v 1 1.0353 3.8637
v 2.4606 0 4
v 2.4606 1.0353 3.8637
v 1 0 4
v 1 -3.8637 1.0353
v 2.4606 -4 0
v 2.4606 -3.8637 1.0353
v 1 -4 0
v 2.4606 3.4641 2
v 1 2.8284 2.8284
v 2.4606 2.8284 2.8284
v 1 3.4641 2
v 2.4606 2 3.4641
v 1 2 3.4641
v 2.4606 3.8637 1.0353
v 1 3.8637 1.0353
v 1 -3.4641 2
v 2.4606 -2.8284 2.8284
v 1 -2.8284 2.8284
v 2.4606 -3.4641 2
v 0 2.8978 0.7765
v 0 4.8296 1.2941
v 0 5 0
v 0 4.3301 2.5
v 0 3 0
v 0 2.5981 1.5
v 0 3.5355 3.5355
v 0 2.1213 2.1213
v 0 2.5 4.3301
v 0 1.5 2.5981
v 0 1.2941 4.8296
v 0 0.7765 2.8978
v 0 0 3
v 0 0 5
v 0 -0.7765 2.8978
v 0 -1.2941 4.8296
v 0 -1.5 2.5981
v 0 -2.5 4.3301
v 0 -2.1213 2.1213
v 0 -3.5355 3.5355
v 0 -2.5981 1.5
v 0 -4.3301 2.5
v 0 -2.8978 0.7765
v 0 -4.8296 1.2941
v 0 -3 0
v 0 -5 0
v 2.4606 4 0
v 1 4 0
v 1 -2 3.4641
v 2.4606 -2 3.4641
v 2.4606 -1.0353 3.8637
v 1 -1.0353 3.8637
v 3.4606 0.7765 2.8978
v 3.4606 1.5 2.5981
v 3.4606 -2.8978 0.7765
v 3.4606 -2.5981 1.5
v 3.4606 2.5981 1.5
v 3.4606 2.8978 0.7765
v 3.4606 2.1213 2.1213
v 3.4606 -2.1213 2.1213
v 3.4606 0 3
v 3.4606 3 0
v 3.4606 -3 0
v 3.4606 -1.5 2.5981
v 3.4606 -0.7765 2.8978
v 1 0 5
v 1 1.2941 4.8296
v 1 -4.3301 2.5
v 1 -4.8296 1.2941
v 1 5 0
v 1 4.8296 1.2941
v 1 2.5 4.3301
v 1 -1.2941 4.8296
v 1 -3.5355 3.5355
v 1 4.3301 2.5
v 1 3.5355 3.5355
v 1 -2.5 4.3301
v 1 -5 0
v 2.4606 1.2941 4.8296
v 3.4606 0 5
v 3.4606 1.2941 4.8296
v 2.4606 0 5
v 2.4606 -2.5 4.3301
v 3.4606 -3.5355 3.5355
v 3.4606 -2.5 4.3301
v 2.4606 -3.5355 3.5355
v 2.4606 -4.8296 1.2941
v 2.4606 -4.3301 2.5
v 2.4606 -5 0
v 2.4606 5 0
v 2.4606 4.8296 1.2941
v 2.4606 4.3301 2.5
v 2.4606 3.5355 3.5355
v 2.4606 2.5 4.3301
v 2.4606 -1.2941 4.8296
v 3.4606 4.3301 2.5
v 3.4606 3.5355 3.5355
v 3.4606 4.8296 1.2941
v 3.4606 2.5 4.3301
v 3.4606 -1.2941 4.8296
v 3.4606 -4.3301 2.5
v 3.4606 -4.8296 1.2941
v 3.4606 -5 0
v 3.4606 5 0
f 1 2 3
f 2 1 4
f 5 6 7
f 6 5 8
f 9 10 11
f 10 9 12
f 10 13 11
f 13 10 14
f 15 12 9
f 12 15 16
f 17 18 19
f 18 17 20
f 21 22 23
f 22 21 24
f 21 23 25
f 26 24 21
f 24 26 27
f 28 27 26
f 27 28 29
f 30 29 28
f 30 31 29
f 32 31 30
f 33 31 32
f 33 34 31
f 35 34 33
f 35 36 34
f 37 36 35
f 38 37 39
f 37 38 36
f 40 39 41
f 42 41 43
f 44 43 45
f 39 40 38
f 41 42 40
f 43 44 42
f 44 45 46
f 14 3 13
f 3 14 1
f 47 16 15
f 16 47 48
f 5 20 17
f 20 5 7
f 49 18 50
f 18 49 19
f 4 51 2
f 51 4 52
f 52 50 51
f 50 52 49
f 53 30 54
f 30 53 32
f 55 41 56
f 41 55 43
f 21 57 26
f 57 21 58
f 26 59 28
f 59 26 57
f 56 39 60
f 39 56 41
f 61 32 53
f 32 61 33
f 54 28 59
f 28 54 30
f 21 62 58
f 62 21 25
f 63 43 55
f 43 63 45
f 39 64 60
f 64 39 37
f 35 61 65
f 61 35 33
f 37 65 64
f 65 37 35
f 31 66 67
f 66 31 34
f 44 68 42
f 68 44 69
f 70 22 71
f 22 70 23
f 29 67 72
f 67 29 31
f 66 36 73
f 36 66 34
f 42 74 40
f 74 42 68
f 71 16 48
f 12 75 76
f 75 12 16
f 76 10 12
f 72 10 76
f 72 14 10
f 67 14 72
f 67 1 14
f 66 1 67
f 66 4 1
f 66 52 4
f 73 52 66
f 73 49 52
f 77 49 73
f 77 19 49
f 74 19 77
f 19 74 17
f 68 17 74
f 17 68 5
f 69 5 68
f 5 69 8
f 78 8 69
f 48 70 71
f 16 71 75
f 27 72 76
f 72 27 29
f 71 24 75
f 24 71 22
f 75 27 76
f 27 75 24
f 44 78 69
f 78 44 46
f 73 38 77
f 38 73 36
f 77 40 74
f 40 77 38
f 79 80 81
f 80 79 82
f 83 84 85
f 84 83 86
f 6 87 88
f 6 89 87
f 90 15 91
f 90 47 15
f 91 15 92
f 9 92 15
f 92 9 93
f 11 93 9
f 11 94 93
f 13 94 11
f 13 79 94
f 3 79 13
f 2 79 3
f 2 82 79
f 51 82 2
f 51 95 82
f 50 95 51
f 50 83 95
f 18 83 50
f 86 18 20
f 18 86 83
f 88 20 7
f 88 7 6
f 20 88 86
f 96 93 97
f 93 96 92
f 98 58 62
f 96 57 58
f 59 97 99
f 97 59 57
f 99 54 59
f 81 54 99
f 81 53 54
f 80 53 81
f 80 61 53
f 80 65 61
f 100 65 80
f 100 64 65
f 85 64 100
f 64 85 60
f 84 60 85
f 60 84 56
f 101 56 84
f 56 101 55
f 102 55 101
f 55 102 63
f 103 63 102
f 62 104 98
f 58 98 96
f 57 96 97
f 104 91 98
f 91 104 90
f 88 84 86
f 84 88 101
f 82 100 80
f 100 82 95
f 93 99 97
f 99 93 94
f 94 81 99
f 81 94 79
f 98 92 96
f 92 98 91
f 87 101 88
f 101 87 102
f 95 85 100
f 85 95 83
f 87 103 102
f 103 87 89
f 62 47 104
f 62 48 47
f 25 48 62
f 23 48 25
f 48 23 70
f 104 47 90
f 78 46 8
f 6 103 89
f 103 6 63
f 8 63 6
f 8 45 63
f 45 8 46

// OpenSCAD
// file: ../build_environments.scad
// build_environments.scad: modules to build level sections
//

module pool(diameter=10.0, wall_height=2.0, step_width=3.0, connections=[])
{
    difference() {
        union() {
        difference() {
            cylinder(h=0.5,r1=diameter+step_width,r2=diameter+step_width,$fn=48);
            translate([0,0,-0.1])
                cylinder(h=0.7,r1=diameter,r2=diameter,$fn=48);
        }
        difference() {
            cylinder(h=wall_height,r1=diameter+step_width+1.0,r2=diameter+step_width+1.0,$fn=48);
            translate([0,0,-0.1])
                cylinder(h=wall_height+0.2,r1=diameter+step_width,r2=diameter+step_width,$fn=48);
        }
        }
    
        for (c = connections)
        {
            rotate([0,90,0]) {
                angle = atan2(c[1],c[0]);
                rotate([-angle,0,0]) {
                    cylinder(h=diameter+5.0,r1=c[2],r2=c[2],$fn=48);
                }
            }
        }
    }
}

module straight(length=10.0, width=2.0, dy1=0.0, dy2=0.0, dz=0.0)
{
    dims = [0, 0, 0, 0, 0, (dz/length)];
    matrix = [
        [ 1, dims[0], dims[1], 0 ],
        [ dims[2], 1, dims[4], 0 ],
        [ dims[5], dims[3], 1, 0 ],
        [ 0, 0, 0, 1 ]
    ];
    multmatrix(matrix)
    difference() {
        translate([dy1,0,0])
        union() {
            rotate([0,90,0]) {
                difference() {
                    cylinder(h=(length-dy1-dy2),r1=width+1.0,r2=width+1.0,$fn=24);
                    translate([0,0,-0.1])
                        cylinder(h=(length-dy1-dy2+0.2),r1=width,r2=width,$fn=24);
                }
                difference() {
                    cylinder(h=1.0,r1=width+2.0,r2=width+2.0,$fn=24);
                    translate([0,0,-0.1])
                        cylinder(h=1.2,r1=width,r2=width,$fn=24);
                }
                translate([0,0,(length-dy1-dy2)-1.0]) {
                    difference() {
                        cylinder(h=1.0,r1=width+2.0,r2=width+2.0,$fn=24);
                        translate([0,0,-0.1])
                            cylinder(h=1.2,r1=width,r2=width,$fn=24);
                    }
                }
            }
        }
        translate([0,0,-(2*width+4.0)/2])
            cube([3*length,3*length,2*width+4.0],center=true);
    }
}

module curve(p0=[0,0], center=[0,0], dir=1, angle=0.0, width=2.0)
{
    radius = sqrt((p0[0]-center[0])*(p0[0]-center[0]) + (p0[1]-center[1])*(p0[1]-center[1]));
    if (dir == 0) {
        difference() {
            rotate([0,0,-90])
            difference() {
                rotate_extrude(angle = angle, convexity = 10, $fn=32)
                    translate([radius, 0, 0])
                        circle(r = width+1.0,$fn=24);
                rotate([0,0,-1.0])
                    rotate_extrude(angle = angle+2.0, convexity = 10, $fn=32)
                        translate([radius, 0, 0])
                            circle(r = width,$fn=24);
            }
            translate([0,0,-(2*width+4.0)/2])
                cube([5*radius,5*radius,2*width+4.0],center=true);
        }
    }
    else {
        difference() {
            rotate([0,0,90])
            difference() {
                rotate_extrude(angle = -angle, convexity = 10, $fn=32)
                    translate([radius, 0, 0])
                        circle(r = width+1.0,$fn=24);
                rotate([0,0,1.0])
                    rotate_extrude(angle = -angle-2.0, convexity = 10, $fn=32)
                        translate([radius, 0, 0])
                            circle(r = width,$fn=24);
            }
            translate([0,0,-(2*width+4.0)/2])
                cube([5*radius,5*radius,2*width+4.0],center=true);
        }
    }

}

// test pool
//pool(diameter=12.0000, wall_height=3.0000, step_width=3.0000, connections=[[0.0000,-26.0000,2.0000], [23.6074,0.0000,2.0000]]);

// test straight, slope
//straight(length=26.0000, width=2.0000, dy1=11.8322, dy2=6.7082, dz=0.0000);
//straight(length=29.1549, width=12.0000, dy1=0.0000, dy2=0.0000, dz=-15.0000);

// test curve
//curve(p0=[23.6074, 0.0000], center=[23.6074, 5.0000], dir=0, angle=60.1011, width=2.0000);
//curve(p0=[33.6426, 12.4219], center=[37.9771, 9.9295], dir=1, angle=120.4627, width=2.0000);
// main file
use <../build_environments.scad>;
straight(length=13.0000, width=3.0000, dy1=0.0000, dy2=9.5394, dz=0.0000);
